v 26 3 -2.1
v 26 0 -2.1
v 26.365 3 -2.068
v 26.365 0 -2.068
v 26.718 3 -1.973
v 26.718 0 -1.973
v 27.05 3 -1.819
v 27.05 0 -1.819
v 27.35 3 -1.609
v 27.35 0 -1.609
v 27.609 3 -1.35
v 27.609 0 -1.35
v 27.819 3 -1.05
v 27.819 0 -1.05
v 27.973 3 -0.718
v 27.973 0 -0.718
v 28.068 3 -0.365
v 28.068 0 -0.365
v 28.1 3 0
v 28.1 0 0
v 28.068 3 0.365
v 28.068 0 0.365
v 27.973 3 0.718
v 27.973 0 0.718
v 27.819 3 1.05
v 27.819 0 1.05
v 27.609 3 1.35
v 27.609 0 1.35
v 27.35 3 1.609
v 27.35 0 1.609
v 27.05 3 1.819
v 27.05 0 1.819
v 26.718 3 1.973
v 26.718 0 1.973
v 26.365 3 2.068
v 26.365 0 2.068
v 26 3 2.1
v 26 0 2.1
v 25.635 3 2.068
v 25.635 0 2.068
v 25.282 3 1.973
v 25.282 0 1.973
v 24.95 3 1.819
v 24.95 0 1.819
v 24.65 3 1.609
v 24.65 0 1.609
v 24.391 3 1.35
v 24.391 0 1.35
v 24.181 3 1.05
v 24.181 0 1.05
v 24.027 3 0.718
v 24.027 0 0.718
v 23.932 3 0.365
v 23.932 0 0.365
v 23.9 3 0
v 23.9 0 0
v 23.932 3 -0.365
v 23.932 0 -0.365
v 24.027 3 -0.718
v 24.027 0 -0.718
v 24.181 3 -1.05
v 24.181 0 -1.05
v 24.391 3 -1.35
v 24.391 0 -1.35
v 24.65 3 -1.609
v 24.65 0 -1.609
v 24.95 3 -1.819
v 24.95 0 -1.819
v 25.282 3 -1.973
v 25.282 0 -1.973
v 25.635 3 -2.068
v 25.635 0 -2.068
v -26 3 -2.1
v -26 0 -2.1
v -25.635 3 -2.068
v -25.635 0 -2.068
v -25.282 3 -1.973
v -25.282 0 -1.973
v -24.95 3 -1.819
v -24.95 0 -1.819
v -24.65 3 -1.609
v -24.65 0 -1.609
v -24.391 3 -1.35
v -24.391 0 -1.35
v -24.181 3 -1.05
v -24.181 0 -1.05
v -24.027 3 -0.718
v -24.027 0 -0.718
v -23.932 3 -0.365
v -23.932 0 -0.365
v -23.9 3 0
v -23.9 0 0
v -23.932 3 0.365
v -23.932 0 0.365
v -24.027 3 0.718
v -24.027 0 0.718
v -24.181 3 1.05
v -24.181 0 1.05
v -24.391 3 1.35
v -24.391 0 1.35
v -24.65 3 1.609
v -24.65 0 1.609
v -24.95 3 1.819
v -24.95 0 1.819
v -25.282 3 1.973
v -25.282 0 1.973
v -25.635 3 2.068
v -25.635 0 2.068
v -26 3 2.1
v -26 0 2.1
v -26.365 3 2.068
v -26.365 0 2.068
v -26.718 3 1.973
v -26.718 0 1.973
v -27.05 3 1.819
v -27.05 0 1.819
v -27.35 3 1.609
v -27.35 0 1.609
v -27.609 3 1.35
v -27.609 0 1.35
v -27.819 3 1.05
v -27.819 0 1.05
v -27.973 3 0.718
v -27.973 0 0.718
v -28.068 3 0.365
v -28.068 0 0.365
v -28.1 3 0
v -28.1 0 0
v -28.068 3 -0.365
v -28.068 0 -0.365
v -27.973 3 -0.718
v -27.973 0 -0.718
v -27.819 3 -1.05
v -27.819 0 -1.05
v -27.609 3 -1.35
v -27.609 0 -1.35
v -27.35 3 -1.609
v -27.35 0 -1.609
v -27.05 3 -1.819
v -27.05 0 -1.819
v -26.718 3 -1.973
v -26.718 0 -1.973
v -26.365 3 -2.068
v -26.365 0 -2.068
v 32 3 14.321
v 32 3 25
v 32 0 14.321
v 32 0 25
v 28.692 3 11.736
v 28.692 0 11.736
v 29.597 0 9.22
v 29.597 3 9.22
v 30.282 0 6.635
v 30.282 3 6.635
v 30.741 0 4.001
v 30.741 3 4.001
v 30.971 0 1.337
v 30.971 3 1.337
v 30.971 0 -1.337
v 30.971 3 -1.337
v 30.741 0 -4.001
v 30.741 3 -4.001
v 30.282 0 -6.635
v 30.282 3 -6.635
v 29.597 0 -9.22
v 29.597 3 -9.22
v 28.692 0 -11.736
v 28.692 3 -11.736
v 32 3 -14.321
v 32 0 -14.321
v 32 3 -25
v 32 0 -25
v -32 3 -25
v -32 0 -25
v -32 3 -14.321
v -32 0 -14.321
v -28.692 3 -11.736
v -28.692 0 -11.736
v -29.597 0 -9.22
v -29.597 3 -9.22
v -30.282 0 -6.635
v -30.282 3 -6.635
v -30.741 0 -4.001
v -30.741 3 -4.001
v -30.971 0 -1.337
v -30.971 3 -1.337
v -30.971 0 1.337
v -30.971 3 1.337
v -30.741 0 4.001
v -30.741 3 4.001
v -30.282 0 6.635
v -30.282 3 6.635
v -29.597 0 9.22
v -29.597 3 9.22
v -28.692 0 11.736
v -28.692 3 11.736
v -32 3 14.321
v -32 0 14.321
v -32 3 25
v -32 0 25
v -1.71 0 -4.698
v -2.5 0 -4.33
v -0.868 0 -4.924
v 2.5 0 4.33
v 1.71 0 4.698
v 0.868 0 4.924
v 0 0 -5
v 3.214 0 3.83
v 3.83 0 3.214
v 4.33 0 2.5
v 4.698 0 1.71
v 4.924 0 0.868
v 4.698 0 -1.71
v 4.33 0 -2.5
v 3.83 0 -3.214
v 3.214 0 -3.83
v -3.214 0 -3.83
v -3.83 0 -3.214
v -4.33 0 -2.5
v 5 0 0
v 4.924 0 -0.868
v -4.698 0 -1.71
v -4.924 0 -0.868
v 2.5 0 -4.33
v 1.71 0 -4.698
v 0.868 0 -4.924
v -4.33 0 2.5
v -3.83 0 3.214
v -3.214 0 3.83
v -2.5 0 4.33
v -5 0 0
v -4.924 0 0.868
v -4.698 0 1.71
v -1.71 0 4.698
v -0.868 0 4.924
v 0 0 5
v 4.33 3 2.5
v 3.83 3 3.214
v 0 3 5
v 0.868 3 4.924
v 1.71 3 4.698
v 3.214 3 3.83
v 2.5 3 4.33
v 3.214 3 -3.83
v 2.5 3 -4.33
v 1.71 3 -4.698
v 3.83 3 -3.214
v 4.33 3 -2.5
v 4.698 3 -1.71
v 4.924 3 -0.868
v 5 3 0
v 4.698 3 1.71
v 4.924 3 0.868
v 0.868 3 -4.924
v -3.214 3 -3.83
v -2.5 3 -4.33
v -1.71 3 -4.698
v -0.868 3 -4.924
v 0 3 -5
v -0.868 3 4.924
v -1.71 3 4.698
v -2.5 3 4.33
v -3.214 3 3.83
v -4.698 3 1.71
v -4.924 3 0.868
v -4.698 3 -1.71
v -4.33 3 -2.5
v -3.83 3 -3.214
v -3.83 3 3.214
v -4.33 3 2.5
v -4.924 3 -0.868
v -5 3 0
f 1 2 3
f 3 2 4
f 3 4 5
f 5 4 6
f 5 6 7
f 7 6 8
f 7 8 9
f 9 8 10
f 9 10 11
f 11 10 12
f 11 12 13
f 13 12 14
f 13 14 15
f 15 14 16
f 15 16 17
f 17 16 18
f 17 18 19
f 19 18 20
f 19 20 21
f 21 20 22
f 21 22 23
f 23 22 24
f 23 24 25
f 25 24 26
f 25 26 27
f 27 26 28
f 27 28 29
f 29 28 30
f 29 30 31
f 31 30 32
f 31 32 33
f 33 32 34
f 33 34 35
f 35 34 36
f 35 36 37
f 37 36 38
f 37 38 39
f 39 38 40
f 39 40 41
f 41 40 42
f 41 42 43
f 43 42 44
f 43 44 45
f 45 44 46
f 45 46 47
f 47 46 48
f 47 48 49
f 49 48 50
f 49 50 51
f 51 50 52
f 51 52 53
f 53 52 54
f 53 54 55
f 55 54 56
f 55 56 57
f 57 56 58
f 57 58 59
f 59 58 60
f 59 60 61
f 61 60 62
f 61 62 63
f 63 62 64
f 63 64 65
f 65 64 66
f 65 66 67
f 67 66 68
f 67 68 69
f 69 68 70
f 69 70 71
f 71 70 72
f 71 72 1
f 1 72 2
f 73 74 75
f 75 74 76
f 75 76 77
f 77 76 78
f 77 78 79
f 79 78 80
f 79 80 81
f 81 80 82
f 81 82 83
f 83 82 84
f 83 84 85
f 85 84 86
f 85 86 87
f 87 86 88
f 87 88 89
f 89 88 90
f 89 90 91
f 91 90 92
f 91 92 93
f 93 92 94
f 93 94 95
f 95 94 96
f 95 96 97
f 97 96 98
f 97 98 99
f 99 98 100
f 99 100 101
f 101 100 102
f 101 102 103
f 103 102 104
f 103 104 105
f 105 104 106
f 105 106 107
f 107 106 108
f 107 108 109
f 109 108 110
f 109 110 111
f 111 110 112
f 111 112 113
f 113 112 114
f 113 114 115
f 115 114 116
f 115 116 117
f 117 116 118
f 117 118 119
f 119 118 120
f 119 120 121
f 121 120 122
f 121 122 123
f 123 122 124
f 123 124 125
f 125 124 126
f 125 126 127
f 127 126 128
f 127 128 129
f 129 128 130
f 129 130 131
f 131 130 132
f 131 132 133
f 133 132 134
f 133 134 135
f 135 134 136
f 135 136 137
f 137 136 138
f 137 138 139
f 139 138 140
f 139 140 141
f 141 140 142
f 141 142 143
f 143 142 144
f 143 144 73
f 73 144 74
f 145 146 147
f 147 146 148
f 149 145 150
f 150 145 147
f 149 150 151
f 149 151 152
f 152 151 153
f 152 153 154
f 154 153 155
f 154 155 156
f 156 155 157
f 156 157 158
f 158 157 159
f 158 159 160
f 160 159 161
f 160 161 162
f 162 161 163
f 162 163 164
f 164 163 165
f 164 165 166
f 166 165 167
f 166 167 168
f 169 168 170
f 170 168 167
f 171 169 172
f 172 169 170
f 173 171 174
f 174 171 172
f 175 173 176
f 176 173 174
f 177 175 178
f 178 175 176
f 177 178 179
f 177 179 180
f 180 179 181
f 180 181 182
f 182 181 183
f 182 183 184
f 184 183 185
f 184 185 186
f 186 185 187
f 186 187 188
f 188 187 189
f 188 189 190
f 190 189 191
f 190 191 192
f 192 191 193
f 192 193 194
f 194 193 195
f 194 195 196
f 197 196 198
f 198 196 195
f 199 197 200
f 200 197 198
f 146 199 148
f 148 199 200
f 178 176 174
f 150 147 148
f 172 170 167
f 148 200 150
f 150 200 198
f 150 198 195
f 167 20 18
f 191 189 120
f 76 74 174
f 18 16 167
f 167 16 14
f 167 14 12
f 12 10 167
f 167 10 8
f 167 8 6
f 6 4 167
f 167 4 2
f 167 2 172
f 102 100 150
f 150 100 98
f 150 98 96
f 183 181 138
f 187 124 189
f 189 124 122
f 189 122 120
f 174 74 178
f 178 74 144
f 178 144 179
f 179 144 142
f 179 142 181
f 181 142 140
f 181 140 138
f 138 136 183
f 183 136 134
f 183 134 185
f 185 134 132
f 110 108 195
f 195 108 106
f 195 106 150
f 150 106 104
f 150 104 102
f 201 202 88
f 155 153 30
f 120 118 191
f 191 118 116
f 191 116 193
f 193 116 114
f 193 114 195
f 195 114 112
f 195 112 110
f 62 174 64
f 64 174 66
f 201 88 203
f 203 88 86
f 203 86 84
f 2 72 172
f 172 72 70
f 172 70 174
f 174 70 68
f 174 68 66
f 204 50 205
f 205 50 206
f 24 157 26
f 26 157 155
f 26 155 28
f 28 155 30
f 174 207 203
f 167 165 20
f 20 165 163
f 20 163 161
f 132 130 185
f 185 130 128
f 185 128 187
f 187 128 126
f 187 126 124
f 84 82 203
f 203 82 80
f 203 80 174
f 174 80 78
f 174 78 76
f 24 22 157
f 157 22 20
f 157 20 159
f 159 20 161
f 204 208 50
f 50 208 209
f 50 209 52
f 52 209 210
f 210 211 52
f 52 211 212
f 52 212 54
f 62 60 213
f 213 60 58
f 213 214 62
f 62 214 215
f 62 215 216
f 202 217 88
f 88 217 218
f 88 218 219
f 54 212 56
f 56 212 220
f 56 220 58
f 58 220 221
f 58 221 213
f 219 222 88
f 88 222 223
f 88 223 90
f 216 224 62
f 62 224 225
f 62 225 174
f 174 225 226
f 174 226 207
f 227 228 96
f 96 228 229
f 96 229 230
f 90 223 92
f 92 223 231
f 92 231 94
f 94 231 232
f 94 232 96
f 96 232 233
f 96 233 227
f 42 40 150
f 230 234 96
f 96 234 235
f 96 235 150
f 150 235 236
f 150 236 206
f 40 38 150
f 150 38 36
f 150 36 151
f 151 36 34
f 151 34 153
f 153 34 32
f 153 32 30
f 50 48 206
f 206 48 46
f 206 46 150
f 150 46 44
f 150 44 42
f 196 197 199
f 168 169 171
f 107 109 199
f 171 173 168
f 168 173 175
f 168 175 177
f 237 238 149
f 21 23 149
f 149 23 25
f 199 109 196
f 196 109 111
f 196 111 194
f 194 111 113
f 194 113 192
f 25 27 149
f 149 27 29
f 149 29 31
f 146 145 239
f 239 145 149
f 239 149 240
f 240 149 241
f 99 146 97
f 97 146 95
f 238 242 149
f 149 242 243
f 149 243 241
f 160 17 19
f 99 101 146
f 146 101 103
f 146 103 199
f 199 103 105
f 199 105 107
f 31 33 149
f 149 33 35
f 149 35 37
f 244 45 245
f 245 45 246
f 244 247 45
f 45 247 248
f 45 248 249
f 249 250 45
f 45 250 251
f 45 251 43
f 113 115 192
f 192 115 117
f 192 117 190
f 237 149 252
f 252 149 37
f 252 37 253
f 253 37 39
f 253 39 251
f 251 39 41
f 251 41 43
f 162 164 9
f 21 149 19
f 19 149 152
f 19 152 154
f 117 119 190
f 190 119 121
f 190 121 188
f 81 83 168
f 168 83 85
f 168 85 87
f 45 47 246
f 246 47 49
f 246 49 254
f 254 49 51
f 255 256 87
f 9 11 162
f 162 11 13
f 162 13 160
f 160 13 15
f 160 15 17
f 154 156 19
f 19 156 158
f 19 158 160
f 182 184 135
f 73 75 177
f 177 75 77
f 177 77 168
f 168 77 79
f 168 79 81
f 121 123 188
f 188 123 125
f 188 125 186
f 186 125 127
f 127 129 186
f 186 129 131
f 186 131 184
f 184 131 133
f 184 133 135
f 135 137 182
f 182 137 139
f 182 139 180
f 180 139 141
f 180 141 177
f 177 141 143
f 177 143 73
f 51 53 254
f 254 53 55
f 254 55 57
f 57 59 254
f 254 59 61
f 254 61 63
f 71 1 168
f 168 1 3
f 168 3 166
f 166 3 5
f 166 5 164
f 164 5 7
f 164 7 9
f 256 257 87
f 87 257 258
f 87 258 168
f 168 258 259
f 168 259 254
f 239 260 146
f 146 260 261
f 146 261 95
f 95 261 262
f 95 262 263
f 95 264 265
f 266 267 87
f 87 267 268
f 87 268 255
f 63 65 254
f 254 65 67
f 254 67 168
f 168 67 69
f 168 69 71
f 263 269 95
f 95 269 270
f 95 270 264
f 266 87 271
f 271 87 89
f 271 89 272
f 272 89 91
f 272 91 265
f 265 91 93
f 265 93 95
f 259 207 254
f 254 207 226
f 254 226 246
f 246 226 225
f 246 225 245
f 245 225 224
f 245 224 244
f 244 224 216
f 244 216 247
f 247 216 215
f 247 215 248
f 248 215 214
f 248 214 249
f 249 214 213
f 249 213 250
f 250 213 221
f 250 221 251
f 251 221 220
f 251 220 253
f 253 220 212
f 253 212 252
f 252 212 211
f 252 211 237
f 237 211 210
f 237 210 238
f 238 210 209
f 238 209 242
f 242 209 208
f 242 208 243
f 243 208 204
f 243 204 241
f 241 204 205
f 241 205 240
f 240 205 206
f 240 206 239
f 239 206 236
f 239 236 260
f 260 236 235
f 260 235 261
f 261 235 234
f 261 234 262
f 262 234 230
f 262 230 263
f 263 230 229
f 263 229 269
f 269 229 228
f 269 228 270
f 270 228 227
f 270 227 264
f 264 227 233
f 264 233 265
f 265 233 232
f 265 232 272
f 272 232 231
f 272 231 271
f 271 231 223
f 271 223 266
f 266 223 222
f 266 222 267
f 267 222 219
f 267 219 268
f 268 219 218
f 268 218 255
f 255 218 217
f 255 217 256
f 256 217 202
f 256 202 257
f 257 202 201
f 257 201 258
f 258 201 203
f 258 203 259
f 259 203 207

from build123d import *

# Parameters (mm, degrees)
SKETCH1_R           = 2.1
BOSS_EXTRUDE2_DEPTH = 3
SKETCH1_14_R        = 5
CUT_EXTRUDE2_DEPTH  = 10


with BuildPart() as part:
    # Sketch1 → Boss-Extrude2 (new body)
    with BuildSketch(Plane(origin=(0, 0, 0), x_dir=(1, 0, 0), z_dir=(0, 1, 0))):
        with BuildLine():
            Line((32, -25), (32, -14.320549047))
            Line((32, -14.320549047), (28.692414075, -11.736497543))
            ThreePointArc((28.692414075, -11.736497543), (31, 0), (28.692414075, 11.736497543))
            Line((28.692414075, 11.736497543), (32, 14.320549047))
            Line((32, 14.320549047), (32, 25))
            Line((32, 25), (-32, 25))
            Line((-32, 25), (-32, 14.320549047))
            Line((-32, 14.320549047), (-28.692414075, 11.736497543))
            ThreePointArc((-28.692414075, 11.736497543), (-31, 0), (-28.692414075, -11.736497543))
            Line((-28.692414075, -11.736497543), (-32, -14.320549047))
            Line((-32, -14.320549047), (-32, -25))
            Line((-32, -25), (32, -25))
        make_face()
        with Locations((26, 0)):
            Circle(SKETCH1_R, mode=Mode.SUBTRACT)
        with Locations((-26, 0)):
            Circle(SKETCH1_R, mode=Mode.SUBTRACT)
    extrude(amount=BOSS_EXTRUDE2_DEPTH)

    # Sketch1<14> → Cut-Extrude2 (cut)
    with BuildSketch(Plane(origin=(0, 0, 0), x_dir=(1, 0, 0), z_dir=(0, 1, 0))):
        Circle(SKETCH1_14_R)
    extrude(amount=CUT_EXTRUDE2_DEPTH, mode=Mode.SUBTRACT)


solid = part.part
